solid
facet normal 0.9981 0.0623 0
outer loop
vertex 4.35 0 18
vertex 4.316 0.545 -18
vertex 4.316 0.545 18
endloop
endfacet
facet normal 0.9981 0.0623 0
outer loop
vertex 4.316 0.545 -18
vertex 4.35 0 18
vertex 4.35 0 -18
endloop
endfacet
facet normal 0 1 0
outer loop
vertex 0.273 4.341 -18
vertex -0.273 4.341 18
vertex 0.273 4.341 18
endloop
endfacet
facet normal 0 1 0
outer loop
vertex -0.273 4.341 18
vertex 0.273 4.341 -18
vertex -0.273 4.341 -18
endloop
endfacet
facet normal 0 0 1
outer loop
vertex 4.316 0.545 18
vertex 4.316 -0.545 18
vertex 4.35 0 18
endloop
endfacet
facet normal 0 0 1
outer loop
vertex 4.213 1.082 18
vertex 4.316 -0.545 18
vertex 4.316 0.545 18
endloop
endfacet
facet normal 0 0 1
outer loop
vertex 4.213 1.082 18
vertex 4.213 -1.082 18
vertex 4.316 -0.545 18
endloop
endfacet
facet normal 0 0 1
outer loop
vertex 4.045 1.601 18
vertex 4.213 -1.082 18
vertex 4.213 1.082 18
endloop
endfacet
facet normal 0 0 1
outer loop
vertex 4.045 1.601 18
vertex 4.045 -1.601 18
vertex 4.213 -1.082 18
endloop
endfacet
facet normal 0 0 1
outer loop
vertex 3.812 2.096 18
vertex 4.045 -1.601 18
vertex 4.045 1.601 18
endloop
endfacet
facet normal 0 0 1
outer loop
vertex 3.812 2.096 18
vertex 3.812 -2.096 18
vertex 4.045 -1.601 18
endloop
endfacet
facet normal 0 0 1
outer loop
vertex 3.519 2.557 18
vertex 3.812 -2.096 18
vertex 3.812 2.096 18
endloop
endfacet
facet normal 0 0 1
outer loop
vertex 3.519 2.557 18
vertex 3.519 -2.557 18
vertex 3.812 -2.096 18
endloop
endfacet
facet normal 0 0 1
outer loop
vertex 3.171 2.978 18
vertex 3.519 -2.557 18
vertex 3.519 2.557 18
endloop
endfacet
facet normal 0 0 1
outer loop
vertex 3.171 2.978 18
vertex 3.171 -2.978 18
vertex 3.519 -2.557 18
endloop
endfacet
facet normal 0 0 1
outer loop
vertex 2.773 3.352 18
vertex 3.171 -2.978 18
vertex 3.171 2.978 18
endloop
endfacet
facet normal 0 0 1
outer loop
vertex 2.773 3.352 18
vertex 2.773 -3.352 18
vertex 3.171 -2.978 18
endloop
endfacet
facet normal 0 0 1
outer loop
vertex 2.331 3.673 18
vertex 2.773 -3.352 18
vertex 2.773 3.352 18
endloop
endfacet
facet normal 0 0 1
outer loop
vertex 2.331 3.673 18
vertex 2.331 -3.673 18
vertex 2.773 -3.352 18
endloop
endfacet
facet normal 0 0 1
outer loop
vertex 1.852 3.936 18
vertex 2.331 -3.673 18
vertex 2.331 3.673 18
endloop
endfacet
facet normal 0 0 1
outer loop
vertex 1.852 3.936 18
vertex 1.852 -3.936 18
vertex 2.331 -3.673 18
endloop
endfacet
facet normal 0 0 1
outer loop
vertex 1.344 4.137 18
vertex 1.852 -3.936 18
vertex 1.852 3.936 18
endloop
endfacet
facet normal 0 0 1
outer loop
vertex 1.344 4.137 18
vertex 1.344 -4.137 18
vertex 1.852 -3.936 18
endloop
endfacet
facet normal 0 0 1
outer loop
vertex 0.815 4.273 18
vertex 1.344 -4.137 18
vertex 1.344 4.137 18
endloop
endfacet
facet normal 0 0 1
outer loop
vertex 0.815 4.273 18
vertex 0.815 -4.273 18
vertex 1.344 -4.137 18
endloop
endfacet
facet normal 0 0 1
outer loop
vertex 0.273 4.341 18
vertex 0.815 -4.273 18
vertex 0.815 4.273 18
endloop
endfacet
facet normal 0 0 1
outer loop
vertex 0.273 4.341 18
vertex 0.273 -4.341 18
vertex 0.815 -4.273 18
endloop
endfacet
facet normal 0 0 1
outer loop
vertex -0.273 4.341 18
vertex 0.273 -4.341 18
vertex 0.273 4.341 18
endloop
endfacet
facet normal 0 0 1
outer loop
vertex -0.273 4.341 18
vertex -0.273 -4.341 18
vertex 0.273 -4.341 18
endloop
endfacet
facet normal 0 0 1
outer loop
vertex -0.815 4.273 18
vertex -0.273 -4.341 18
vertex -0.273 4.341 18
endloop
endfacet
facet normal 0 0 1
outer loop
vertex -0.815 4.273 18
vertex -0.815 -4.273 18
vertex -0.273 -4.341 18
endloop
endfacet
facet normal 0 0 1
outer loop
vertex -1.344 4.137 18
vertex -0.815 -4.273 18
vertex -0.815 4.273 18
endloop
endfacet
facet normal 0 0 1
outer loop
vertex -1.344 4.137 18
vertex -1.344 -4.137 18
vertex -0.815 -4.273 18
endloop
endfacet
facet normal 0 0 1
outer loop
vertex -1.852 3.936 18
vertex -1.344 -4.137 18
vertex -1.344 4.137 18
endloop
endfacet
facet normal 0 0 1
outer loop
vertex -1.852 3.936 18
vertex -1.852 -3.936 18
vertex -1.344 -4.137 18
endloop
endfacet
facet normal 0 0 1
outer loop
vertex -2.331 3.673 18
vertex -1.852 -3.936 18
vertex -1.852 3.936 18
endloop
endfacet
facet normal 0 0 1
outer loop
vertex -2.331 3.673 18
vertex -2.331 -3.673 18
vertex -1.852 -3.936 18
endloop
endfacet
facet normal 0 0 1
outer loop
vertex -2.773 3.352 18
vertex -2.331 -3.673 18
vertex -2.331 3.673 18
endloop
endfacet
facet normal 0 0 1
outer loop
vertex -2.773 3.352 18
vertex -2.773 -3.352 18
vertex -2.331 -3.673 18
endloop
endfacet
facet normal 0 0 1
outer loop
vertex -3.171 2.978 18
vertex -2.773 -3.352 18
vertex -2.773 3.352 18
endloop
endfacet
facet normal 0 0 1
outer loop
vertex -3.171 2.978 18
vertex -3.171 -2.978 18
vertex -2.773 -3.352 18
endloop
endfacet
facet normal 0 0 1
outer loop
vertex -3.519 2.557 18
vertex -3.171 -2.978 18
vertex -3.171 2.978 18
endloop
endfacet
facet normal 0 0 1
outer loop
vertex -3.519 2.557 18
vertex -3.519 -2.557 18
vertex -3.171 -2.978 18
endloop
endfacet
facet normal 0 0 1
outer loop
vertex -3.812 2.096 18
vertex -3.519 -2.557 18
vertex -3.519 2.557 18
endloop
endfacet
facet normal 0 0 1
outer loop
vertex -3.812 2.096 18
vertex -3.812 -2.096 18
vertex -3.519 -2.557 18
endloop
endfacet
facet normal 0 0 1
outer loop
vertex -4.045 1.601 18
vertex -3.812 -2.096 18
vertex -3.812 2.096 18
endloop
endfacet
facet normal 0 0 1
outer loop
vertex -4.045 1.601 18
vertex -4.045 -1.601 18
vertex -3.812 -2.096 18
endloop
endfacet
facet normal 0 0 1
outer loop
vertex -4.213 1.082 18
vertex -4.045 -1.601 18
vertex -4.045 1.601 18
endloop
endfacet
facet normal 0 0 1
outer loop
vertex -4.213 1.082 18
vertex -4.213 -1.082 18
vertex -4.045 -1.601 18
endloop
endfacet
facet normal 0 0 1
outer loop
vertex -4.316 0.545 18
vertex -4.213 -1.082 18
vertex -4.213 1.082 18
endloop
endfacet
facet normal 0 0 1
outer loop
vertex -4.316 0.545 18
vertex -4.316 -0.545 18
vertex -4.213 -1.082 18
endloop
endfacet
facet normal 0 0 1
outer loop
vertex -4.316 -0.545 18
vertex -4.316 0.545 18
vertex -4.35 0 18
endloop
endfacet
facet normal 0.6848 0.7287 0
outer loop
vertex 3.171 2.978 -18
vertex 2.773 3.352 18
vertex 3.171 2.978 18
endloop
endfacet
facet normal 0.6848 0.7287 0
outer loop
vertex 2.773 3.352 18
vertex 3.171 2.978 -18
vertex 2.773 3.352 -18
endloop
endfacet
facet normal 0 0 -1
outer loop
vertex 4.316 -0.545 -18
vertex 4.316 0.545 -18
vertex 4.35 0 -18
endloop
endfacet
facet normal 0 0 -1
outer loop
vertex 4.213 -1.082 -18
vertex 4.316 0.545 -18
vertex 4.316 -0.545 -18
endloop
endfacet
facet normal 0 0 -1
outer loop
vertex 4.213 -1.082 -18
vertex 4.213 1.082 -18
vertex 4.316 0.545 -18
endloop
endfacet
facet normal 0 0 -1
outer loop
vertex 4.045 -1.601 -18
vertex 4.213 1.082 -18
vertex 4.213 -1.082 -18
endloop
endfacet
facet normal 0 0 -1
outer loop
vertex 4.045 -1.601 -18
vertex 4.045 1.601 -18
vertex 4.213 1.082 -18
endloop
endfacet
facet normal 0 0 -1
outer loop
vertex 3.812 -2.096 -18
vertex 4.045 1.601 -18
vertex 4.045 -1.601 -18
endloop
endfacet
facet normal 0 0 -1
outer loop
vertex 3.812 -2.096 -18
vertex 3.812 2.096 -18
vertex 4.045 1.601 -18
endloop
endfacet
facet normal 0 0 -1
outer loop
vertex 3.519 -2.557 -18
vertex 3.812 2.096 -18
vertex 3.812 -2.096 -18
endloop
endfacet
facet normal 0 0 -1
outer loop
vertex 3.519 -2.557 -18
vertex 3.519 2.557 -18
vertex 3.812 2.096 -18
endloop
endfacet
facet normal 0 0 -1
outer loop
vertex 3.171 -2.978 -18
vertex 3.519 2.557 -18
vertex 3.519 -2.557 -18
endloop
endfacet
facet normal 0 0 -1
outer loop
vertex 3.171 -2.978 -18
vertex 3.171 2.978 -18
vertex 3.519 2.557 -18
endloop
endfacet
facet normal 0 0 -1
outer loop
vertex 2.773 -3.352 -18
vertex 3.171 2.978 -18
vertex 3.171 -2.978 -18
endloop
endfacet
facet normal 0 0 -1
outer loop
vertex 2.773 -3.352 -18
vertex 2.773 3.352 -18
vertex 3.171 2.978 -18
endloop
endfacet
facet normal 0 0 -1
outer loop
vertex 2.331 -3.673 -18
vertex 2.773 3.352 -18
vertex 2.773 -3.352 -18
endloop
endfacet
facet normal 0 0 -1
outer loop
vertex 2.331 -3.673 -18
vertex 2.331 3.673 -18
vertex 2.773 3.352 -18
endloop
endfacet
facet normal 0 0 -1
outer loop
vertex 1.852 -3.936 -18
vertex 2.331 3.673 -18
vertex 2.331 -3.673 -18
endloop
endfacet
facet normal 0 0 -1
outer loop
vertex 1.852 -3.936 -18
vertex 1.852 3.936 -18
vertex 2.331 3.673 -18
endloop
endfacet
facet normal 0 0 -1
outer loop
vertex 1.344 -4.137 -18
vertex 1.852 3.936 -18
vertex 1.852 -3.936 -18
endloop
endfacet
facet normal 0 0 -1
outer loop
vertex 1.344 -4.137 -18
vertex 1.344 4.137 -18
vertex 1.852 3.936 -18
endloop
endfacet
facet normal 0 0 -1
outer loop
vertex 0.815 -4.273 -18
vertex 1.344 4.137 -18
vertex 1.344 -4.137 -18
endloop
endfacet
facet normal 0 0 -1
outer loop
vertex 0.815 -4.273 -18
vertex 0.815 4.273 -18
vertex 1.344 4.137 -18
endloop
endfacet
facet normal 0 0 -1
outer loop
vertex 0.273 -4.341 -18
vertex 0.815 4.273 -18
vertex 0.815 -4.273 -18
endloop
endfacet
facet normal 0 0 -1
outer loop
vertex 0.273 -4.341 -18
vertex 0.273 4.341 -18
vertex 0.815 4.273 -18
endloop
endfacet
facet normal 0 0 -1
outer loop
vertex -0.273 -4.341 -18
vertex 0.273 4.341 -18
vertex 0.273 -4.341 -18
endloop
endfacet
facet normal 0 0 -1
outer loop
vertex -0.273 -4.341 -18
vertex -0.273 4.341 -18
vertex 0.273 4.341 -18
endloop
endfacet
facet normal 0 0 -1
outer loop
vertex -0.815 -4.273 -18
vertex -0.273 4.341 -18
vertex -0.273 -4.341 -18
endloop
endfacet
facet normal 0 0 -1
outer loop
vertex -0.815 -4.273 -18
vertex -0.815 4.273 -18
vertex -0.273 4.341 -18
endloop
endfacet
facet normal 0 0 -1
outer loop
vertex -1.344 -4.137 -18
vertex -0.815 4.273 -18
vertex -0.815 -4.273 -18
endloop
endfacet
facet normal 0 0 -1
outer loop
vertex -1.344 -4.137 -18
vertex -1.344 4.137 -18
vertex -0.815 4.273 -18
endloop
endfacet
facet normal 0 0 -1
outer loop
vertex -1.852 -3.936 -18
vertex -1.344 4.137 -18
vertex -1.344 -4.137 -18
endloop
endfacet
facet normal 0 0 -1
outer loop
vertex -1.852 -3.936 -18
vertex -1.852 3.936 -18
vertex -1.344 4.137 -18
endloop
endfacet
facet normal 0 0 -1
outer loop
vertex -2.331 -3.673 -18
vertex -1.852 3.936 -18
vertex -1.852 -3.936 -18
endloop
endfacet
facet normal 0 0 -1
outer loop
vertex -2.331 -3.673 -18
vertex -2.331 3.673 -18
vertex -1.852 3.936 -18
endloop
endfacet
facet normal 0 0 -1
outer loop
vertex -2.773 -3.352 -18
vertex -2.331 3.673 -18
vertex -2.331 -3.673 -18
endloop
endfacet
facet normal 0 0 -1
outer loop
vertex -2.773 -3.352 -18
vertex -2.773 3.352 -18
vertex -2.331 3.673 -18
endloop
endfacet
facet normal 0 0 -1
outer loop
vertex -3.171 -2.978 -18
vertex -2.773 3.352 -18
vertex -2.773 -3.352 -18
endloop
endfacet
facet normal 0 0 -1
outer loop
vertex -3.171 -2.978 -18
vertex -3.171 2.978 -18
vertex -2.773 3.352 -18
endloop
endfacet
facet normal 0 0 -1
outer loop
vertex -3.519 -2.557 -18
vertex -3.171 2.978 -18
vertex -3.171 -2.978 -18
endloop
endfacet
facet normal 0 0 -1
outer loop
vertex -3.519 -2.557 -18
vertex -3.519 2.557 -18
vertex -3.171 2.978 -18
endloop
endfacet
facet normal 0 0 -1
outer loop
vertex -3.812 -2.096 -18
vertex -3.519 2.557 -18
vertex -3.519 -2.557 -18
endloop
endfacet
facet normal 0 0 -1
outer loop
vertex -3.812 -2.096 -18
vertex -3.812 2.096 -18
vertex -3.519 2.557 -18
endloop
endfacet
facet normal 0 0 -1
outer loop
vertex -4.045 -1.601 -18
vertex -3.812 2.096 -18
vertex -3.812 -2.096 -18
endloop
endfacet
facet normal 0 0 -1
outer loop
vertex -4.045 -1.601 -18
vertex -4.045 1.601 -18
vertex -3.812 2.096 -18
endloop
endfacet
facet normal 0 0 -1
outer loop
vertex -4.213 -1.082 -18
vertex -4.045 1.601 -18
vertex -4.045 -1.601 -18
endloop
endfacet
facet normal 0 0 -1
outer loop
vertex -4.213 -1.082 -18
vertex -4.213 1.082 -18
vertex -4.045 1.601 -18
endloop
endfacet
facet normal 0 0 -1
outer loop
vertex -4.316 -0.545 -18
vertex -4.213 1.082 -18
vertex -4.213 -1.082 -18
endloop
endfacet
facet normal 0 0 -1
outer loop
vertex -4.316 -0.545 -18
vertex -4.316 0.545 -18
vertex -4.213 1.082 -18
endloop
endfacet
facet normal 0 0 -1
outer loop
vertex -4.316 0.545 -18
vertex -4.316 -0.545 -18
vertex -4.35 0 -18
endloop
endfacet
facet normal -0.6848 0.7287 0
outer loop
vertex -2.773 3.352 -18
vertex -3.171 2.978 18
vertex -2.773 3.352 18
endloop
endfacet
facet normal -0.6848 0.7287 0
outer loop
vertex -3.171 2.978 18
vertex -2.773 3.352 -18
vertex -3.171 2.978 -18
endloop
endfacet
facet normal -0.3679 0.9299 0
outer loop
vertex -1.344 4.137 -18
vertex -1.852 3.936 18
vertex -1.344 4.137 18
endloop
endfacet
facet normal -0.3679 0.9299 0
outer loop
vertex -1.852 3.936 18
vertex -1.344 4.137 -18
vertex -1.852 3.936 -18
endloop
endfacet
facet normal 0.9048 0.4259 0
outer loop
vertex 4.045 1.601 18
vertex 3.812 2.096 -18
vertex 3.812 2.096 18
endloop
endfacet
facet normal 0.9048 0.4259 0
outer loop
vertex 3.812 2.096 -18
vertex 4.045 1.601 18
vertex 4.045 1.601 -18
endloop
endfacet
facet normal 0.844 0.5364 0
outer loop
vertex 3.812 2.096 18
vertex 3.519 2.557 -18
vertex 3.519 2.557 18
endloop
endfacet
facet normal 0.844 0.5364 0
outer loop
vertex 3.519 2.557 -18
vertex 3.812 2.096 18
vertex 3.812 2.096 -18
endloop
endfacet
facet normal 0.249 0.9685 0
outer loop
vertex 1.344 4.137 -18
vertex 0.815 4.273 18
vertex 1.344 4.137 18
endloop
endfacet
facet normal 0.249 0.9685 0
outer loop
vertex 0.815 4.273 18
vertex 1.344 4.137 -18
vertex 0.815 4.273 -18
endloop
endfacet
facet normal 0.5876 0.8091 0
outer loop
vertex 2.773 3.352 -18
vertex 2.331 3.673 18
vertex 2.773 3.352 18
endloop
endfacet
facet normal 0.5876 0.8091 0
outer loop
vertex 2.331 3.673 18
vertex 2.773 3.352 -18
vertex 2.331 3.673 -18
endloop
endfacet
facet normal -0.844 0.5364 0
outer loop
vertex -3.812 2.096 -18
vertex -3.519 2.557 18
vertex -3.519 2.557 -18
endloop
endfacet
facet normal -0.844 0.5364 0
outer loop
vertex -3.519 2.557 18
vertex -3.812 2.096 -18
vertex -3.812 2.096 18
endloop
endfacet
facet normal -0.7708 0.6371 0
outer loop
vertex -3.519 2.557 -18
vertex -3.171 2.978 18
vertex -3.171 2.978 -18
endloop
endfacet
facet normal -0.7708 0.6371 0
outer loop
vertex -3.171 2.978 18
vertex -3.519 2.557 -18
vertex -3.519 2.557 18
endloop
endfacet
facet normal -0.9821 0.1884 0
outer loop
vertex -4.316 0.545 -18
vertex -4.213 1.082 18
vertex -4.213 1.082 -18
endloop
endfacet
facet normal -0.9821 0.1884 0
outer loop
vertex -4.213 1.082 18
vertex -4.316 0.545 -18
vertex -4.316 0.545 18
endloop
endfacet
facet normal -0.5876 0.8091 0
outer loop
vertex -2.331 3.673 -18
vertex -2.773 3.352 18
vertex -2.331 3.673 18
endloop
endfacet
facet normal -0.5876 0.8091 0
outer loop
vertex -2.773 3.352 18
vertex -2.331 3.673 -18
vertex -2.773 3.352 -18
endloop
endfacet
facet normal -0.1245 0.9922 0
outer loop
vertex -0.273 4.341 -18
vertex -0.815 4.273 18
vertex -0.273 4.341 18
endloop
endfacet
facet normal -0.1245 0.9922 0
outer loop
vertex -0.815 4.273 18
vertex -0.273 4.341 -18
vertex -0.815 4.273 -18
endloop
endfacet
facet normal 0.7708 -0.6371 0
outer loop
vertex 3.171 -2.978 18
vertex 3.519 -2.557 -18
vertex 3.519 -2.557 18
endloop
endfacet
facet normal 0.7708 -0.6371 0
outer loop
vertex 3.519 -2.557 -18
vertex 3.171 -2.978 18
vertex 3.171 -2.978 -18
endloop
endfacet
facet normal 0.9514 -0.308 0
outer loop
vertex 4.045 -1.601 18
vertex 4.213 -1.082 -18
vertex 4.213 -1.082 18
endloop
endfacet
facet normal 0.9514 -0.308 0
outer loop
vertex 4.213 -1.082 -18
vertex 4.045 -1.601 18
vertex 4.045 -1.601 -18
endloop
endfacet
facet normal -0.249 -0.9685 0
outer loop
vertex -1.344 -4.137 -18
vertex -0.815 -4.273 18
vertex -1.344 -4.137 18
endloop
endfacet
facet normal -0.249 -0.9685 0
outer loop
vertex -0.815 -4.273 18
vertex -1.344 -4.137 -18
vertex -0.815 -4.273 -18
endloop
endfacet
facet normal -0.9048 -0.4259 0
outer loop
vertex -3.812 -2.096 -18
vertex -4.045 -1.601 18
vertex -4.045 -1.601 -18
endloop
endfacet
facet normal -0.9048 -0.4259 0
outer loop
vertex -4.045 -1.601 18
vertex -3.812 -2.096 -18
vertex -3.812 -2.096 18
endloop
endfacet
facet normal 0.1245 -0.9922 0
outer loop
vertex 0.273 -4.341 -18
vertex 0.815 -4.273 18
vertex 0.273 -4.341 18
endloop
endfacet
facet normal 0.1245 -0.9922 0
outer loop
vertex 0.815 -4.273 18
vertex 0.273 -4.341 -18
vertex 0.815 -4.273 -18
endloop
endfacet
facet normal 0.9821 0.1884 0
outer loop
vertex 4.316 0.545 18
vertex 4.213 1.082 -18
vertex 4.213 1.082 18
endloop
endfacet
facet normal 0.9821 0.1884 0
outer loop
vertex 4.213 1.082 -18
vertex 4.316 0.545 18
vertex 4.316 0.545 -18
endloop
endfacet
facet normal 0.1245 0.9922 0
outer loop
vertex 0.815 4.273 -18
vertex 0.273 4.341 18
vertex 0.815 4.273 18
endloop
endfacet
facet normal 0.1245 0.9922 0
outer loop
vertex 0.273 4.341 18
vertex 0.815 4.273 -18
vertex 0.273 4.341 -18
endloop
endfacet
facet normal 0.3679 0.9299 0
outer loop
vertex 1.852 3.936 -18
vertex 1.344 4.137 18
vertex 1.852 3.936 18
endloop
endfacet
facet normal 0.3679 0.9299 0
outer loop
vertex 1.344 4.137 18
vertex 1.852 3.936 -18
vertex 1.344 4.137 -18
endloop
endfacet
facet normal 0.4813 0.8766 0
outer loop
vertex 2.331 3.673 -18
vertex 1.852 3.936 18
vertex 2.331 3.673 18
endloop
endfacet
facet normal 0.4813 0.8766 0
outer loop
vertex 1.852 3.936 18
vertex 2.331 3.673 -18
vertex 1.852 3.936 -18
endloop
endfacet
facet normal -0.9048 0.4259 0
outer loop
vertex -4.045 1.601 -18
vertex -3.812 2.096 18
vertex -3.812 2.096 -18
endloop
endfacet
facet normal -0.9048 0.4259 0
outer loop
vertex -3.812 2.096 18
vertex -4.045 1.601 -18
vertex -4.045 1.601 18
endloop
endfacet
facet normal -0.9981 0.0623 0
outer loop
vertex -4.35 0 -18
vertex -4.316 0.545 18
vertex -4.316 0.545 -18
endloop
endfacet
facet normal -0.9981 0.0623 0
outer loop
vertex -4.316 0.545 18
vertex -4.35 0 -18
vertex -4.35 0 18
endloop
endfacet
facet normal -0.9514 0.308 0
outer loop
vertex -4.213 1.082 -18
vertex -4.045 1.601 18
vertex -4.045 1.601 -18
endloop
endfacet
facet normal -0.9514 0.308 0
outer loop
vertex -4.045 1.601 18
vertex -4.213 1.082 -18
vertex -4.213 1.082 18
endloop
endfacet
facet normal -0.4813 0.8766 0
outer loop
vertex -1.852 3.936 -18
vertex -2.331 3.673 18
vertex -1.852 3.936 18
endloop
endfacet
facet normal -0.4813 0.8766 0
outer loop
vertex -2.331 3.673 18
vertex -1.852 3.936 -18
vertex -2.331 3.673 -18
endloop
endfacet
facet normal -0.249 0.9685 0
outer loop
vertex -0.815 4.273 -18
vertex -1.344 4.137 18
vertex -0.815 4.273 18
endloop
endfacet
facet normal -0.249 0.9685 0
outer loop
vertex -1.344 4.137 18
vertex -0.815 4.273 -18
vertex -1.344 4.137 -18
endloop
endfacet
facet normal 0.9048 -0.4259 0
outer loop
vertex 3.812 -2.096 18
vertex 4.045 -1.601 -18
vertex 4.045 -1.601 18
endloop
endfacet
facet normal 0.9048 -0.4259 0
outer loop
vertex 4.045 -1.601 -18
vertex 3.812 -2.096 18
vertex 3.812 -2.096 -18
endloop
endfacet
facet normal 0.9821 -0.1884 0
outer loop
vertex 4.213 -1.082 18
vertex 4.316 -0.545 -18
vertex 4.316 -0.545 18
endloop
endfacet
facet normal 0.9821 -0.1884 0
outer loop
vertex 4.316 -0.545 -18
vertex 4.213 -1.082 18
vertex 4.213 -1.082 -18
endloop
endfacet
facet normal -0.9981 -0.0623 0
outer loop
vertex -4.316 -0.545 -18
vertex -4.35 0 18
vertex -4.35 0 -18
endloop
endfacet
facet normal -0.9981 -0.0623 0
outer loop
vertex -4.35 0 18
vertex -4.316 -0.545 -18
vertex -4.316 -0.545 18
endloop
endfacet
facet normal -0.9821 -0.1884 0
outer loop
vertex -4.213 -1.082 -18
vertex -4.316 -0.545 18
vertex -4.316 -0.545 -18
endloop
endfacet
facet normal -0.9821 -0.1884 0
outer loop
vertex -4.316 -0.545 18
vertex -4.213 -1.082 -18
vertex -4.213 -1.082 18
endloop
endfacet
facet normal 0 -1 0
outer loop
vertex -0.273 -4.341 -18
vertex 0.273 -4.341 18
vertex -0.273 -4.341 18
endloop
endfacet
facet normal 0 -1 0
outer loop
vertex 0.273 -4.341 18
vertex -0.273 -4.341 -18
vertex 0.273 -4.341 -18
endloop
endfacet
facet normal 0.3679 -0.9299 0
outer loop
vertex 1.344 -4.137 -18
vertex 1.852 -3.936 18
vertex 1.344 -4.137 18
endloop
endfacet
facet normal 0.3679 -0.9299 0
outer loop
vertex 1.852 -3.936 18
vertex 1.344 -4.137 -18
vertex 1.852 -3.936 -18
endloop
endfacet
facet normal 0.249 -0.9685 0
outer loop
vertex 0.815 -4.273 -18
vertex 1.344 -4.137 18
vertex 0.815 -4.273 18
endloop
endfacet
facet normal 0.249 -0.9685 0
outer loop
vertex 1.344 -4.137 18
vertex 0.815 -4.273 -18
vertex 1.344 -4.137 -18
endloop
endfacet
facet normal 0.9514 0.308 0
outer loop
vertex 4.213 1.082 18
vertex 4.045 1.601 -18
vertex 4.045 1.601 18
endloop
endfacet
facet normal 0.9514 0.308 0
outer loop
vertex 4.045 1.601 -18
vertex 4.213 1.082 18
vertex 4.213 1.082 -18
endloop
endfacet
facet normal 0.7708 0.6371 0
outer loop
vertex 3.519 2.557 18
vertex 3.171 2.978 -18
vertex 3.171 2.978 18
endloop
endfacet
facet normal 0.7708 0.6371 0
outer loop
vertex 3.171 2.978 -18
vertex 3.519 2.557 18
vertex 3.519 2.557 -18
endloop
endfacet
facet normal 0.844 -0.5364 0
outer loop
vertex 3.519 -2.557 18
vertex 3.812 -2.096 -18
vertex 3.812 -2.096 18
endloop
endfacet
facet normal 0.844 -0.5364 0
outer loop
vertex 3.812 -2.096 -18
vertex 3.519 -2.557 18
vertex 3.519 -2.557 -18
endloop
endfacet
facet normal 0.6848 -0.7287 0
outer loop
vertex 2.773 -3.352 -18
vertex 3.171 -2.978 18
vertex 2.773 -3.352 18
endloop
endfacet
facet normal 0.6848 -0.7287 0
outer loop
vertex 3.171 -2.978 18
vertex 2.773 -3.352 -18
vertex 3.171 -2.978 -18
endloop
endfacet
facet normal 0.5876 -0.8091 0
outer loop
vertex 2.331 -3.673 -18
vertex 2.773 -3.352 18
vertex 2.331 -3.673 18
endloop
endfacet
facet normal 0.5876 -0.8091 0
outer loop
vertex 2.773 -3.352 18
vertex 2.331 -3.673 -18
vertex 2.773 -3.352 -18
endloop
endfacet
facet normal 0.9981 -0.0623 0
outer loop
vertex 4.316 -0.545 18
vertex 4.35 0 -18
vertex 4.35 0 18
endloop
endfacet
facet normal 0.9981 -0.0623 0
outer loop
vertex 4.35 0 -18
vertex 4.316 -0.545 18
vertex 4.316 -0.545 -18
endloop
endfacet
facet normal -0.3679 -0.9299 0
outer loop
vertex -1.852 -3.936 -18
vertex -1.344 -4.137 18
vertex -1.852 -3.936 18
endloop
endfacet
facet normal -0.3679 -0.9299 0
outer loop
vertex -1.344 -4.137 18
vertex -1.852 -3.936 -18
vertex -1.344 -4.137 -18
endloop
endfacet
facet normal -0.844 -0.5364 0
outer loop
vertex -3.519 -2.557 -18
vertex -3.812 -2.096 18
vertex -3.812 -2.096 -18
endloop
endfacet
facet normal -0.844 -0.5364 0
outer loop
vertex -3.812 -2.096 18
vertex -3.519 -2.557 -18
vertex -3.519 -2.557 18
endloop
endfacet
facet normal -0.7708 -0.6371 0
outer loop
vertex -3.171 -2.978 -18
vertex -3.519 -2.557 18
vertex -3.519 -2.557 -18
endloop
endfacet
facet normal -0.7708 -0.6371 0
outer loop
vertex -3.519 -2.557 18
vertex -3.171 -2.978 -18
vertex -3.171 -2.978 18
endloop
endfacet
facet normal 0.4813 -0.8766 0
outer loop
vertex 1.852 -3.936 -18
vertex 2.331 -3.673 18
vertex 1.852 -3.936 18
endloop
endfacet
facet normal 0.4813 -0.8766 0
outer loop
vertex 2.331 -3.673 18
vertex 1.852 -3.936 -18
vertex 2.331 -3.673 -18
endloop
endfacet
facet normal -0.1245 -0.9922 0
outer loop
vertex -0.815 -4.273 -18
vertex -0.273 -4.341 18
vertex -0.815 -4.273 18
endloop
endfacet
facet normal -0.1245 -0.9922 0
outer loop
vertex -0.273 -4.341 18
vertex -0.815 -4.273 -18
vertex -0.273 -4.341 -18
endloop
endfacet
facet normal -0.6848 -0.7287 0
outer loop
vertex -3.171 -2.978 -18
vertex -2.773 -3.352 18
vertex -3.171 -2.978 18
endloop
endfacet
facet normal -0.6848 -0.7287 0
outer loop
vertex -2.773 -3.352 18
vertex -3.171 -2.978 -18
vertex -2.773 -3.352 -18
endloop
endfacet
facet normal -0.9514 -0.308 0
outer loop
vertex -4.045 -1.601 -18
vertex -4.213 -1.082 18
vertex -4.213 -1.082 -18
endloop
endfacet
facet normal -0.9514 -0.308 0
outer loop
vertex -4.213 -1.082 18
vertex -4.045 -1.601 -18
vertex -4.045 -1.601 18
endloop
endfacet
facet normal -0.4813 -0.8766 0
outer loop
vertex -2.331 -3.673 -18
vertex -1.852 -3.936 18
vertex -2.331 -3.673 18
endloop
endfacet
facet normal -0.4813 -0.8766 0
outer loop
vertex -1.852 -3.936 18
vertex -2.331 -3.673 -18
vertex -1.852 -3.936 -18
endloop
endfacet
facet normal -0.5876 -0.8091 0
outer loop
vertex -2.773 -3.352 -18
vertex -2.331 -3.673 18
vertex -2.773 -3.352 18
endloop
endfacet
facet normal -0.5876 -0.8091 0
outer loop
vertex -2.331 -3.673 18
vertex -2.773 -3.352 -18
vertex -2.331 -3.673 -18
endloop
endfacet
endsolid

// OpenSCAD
$fn = 50;


difference() {
	union() {
		translate(v = [0, 0, -18.0000000000]) {
			cylinder(h = 36, r = 4.3500000000);
		}
	}
	union() {
		translate(v = [0, 0, -100.0000000000]) {
			cylinder(h = 200, r = 0);
		}
	}
}
